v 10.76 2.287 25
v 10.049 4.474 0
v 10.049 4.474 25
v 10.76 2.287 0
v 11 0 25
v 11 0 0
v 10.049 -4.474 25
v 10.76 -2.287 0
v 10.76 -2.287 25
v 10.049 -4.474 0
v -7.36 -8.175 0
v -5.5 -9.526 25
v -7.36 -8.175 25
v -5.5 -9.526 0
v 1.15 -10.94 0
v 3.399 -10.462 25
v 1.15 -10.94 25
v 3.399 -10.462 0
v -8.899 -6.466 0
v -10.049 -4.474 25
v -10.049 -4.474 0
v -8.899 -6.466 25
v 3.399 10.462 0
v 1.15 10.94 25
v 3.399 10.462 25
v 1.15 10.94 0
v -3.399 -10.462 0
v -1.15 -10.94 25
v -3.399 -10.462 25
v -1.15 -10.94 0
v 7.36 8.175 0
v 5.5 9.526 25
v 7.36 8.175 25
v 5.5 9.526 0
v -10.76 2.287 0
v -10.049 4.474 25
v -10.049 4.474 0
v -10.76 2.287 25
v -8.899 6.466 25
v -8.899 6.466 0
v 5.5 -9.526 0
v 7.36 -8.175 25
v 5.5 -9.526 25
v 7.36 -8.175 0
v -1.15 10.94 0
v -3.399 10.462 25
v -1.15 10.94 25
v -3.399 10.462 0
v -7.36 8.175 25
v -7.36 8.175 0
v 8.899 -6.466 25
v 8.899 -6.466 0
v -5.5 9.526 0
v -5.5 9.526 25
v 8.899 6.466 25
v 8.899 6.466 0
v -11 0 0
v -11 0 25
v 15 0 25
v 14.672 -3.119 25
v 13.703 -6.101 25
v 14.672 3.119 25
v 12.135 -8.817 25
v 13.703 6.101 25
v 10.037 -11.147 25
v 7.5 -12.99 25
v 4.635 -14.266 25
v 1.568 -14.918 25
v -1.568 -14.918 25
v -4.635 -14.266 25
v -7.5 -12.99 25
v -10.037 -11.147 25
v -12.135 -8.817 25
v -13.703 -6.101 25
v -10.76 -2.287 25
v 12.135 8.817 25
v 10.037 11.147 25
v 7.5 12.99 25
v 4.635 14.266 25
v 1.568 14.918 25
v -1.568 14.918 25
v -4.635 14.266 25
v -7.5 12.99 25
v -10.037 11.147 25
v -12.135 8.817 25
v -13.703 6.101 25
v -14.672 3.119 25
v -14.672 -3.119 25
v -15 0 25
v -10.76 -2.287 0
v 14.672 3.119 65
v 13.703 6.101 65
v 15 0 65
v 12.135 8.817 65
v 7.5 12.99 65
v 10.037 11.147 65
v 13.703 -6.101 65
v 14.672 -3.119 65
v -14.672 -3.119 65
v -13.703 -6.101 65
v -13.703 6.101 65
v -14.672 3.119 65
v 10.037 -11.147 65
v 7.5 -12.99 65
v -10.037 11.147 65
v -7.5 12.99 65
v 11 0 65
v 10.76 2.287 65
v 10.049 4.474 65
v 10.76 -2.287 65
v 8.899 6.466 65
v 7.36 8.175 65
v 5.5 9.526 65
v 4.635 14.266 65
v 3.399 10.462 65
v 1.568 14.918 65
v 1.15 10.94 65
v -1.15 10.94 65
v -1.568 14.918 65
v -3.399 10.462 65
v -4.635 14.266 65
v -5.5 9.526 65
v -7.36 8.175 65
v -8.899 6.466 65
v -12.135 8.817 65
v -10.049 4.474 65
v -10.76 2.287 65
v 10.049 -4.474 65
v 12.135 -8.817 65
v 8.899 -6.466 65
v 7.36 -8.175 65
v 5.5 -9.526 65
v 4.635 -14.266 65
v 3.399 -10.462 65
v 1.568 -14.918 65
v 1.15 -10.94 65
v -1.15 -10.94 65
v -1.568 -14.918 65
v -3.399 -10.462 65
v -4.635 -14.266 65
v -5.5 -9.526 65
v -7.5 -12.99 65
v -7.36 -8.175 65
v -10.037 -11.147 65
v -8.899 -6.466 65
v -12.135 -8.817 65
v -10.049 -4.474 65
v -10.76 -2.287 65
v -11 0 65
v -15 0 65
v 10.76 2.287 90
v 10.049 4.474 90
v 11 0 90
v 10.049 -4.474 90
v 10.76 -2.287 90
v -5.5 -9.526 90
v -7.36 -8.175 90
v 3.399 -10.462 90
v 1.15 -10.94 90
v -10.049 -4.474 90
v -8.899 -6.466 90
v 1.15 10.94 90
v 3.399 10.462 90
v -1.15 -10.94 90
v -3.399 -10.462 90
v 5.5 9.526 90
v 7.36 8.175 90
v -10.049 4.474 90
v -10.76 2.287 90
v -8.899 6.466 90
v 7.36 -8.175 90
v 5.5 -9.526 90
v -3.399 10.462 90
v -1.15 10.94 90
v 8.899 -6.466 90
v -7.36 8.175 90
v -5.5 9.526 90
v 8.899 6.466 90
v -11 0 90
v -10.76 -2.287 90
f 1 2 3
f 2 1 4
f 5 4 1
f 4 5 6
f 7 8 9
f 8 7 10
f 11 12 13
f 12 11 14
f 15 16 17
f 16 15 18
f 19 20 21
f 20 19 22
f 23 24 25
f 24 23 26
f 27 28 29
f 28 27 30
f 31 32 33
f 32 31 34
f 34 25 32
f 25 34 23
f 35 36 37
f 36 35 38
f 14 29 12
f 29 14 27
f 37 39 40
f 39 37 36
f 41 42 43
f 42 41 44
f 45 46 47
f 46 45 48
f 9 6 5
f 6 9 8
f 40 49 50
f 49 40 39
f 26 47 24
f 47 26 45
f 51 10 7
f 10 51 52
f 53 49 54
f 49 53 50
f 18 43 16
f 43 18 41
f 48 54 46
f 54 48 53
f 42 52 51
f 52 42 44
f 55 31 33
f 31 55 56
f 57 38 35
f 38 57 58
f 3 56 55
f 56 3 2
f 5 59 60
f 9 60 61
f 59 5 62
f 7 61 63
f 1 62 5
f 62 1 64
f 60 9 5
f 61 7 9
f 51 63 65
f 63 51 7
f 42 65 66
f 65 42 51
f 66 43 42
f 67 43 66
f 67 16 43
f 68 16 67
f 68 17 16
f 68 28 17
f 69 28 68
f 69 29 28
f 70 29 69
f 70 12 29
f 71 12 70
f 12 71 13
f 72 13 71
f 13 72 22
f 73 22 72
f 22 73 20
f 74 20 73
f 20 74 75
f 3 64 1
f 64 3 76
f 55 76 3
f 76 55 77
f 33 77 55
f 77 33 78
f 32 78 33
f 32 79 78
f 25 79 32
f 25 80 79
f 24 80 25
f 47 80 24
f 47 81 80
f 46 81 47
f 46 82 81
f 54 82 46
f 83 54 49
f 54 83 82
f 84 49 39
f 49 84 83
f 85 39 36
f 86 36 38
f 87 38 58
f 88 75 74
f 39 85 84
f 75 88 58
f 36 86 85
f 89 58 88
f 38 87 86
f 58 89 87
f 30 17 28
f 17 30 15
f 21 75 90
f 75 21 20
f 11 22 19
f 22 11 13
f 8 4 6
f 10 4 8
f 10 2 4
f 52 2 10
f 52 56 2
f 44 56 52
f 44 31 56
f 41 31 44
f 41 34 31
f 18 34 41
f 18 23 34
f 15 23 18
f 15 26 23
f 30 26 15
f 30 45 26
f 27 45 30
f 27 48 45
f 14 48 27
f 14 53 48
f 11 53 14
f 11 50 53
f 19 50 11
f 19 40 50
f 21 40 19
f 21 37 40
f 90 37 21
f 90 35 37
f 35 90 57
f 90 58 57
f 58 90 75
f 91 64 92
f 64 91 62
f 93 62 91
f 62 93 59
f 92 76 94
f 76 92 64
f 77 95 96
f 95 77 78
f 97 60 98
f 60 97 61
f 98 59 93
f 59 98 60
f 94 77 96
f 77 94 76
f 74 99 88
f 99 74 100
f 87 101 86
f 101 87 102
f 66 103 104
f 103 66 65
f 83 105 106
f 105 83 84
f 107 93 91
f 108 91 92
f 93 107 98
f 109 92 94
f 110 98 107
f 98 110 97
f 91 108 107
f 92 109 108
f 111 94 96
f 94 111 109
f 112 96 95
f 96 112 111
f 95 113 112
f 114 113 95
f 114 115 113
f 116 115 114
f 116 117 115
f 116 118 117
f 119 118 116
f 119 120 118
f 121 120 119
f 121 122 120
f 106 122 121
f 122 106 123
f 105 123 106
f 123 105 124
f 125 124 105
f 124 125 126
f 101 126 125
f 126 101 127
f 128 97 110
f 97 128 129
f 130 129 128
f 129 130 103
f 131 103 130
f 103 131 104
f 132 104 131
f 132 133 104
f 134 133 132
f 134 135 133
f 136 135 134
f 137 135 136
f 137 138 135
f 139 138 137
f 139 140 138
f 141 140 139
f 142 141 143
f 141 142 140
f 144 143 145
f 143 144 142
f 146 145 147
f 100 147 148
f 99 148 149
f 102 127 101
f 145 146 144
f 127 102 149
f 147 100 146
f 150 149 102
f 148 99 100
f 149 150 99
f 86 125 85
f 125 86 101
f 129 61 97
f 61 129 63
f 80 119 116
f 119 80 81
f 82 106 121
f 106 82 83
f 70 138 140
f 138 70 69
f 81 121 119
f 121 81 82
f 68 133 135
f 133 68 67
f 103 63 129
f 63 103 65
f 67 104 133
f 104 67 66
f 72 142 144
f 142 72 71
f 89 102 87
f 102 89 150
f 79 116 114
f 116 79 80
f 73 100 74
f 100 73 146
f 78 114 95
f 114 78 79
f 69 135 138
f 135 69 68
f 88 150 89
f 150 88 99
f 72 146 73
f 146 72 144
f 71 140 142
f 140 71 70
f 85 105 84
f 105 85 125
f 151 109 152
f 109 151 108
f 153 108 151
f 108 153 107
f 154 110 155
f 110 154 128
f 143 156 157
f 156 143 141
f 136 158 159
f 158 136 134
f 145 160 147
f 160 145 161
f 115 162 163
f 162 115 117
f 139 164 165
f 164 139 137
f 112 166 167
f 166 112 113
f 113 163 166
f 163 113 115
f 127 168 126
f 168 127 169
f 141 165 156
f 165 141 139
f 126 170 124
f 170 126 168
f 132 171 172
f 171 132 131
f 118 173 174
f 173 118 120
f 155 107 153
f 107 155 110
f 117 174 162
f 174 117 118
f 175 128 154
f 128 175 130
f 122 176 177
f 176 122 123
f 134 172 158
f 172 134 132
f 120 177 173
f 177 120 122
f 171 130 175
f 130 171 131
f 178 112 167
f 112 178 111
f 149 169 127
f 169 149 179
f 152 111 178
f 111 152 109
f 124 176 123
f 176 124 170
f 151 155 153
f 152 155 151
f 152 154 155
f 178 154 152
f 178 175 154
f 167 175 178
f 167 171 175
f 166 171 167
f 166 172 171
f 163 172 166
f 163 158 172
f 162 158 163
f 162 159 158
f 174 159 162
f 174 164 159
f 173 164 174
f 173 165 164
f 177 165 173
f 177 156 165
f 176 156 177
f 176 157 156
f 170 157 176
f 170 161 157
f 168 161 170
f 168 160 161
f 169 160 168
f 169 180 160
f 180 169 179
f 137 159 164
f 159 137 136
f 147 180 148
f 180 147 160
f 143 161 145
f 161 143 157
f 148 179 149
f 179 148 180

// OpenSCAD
// Parameters for dimensions
input_cylinder_diameter = 22; // Adjusted diameter of the input cylinder to match the original model
input_cylinder_height = 25;  // Reduced height of the input cylinder to match the original model

central_cylinder_diameter = 30; // Diameter of the central cylinder remains unchanged
central_cylinder_height = 40;   // Height of the central cylinder remains unchanged

output_cylinder_diameter = 22; // Adjusted diameter of the output cylinder to match the original model
output_cylinder_height = 25;  // Reduced height of the output cylinder to match the original model

// Positional offsets
input_cylinder_offset = 0; // Topmost position
central_cylinder_offset = input_cylinder_height; // Below the input cylinder
output_cylinder_offset = input_cylinder_height + central_cylinder_height; // Below the central cylinder

// Input Cylinder
translate([0, 0, input_cylinder_offset])
cylinder(h = input_cylinder_height, d = input_cylinder_diameter, center = false);

// Central Cylinder
translate([0, 0, central_cylinder_offset])
cylinder(h = central_cylinder_height, d = central_cylinder_diameter, center = false);

// Output Cylinder
translate([0, 0, output_cylinder_offset])
cylinder(h = output_cylinder_height, d = output_cylinder_diameter, center = false);
